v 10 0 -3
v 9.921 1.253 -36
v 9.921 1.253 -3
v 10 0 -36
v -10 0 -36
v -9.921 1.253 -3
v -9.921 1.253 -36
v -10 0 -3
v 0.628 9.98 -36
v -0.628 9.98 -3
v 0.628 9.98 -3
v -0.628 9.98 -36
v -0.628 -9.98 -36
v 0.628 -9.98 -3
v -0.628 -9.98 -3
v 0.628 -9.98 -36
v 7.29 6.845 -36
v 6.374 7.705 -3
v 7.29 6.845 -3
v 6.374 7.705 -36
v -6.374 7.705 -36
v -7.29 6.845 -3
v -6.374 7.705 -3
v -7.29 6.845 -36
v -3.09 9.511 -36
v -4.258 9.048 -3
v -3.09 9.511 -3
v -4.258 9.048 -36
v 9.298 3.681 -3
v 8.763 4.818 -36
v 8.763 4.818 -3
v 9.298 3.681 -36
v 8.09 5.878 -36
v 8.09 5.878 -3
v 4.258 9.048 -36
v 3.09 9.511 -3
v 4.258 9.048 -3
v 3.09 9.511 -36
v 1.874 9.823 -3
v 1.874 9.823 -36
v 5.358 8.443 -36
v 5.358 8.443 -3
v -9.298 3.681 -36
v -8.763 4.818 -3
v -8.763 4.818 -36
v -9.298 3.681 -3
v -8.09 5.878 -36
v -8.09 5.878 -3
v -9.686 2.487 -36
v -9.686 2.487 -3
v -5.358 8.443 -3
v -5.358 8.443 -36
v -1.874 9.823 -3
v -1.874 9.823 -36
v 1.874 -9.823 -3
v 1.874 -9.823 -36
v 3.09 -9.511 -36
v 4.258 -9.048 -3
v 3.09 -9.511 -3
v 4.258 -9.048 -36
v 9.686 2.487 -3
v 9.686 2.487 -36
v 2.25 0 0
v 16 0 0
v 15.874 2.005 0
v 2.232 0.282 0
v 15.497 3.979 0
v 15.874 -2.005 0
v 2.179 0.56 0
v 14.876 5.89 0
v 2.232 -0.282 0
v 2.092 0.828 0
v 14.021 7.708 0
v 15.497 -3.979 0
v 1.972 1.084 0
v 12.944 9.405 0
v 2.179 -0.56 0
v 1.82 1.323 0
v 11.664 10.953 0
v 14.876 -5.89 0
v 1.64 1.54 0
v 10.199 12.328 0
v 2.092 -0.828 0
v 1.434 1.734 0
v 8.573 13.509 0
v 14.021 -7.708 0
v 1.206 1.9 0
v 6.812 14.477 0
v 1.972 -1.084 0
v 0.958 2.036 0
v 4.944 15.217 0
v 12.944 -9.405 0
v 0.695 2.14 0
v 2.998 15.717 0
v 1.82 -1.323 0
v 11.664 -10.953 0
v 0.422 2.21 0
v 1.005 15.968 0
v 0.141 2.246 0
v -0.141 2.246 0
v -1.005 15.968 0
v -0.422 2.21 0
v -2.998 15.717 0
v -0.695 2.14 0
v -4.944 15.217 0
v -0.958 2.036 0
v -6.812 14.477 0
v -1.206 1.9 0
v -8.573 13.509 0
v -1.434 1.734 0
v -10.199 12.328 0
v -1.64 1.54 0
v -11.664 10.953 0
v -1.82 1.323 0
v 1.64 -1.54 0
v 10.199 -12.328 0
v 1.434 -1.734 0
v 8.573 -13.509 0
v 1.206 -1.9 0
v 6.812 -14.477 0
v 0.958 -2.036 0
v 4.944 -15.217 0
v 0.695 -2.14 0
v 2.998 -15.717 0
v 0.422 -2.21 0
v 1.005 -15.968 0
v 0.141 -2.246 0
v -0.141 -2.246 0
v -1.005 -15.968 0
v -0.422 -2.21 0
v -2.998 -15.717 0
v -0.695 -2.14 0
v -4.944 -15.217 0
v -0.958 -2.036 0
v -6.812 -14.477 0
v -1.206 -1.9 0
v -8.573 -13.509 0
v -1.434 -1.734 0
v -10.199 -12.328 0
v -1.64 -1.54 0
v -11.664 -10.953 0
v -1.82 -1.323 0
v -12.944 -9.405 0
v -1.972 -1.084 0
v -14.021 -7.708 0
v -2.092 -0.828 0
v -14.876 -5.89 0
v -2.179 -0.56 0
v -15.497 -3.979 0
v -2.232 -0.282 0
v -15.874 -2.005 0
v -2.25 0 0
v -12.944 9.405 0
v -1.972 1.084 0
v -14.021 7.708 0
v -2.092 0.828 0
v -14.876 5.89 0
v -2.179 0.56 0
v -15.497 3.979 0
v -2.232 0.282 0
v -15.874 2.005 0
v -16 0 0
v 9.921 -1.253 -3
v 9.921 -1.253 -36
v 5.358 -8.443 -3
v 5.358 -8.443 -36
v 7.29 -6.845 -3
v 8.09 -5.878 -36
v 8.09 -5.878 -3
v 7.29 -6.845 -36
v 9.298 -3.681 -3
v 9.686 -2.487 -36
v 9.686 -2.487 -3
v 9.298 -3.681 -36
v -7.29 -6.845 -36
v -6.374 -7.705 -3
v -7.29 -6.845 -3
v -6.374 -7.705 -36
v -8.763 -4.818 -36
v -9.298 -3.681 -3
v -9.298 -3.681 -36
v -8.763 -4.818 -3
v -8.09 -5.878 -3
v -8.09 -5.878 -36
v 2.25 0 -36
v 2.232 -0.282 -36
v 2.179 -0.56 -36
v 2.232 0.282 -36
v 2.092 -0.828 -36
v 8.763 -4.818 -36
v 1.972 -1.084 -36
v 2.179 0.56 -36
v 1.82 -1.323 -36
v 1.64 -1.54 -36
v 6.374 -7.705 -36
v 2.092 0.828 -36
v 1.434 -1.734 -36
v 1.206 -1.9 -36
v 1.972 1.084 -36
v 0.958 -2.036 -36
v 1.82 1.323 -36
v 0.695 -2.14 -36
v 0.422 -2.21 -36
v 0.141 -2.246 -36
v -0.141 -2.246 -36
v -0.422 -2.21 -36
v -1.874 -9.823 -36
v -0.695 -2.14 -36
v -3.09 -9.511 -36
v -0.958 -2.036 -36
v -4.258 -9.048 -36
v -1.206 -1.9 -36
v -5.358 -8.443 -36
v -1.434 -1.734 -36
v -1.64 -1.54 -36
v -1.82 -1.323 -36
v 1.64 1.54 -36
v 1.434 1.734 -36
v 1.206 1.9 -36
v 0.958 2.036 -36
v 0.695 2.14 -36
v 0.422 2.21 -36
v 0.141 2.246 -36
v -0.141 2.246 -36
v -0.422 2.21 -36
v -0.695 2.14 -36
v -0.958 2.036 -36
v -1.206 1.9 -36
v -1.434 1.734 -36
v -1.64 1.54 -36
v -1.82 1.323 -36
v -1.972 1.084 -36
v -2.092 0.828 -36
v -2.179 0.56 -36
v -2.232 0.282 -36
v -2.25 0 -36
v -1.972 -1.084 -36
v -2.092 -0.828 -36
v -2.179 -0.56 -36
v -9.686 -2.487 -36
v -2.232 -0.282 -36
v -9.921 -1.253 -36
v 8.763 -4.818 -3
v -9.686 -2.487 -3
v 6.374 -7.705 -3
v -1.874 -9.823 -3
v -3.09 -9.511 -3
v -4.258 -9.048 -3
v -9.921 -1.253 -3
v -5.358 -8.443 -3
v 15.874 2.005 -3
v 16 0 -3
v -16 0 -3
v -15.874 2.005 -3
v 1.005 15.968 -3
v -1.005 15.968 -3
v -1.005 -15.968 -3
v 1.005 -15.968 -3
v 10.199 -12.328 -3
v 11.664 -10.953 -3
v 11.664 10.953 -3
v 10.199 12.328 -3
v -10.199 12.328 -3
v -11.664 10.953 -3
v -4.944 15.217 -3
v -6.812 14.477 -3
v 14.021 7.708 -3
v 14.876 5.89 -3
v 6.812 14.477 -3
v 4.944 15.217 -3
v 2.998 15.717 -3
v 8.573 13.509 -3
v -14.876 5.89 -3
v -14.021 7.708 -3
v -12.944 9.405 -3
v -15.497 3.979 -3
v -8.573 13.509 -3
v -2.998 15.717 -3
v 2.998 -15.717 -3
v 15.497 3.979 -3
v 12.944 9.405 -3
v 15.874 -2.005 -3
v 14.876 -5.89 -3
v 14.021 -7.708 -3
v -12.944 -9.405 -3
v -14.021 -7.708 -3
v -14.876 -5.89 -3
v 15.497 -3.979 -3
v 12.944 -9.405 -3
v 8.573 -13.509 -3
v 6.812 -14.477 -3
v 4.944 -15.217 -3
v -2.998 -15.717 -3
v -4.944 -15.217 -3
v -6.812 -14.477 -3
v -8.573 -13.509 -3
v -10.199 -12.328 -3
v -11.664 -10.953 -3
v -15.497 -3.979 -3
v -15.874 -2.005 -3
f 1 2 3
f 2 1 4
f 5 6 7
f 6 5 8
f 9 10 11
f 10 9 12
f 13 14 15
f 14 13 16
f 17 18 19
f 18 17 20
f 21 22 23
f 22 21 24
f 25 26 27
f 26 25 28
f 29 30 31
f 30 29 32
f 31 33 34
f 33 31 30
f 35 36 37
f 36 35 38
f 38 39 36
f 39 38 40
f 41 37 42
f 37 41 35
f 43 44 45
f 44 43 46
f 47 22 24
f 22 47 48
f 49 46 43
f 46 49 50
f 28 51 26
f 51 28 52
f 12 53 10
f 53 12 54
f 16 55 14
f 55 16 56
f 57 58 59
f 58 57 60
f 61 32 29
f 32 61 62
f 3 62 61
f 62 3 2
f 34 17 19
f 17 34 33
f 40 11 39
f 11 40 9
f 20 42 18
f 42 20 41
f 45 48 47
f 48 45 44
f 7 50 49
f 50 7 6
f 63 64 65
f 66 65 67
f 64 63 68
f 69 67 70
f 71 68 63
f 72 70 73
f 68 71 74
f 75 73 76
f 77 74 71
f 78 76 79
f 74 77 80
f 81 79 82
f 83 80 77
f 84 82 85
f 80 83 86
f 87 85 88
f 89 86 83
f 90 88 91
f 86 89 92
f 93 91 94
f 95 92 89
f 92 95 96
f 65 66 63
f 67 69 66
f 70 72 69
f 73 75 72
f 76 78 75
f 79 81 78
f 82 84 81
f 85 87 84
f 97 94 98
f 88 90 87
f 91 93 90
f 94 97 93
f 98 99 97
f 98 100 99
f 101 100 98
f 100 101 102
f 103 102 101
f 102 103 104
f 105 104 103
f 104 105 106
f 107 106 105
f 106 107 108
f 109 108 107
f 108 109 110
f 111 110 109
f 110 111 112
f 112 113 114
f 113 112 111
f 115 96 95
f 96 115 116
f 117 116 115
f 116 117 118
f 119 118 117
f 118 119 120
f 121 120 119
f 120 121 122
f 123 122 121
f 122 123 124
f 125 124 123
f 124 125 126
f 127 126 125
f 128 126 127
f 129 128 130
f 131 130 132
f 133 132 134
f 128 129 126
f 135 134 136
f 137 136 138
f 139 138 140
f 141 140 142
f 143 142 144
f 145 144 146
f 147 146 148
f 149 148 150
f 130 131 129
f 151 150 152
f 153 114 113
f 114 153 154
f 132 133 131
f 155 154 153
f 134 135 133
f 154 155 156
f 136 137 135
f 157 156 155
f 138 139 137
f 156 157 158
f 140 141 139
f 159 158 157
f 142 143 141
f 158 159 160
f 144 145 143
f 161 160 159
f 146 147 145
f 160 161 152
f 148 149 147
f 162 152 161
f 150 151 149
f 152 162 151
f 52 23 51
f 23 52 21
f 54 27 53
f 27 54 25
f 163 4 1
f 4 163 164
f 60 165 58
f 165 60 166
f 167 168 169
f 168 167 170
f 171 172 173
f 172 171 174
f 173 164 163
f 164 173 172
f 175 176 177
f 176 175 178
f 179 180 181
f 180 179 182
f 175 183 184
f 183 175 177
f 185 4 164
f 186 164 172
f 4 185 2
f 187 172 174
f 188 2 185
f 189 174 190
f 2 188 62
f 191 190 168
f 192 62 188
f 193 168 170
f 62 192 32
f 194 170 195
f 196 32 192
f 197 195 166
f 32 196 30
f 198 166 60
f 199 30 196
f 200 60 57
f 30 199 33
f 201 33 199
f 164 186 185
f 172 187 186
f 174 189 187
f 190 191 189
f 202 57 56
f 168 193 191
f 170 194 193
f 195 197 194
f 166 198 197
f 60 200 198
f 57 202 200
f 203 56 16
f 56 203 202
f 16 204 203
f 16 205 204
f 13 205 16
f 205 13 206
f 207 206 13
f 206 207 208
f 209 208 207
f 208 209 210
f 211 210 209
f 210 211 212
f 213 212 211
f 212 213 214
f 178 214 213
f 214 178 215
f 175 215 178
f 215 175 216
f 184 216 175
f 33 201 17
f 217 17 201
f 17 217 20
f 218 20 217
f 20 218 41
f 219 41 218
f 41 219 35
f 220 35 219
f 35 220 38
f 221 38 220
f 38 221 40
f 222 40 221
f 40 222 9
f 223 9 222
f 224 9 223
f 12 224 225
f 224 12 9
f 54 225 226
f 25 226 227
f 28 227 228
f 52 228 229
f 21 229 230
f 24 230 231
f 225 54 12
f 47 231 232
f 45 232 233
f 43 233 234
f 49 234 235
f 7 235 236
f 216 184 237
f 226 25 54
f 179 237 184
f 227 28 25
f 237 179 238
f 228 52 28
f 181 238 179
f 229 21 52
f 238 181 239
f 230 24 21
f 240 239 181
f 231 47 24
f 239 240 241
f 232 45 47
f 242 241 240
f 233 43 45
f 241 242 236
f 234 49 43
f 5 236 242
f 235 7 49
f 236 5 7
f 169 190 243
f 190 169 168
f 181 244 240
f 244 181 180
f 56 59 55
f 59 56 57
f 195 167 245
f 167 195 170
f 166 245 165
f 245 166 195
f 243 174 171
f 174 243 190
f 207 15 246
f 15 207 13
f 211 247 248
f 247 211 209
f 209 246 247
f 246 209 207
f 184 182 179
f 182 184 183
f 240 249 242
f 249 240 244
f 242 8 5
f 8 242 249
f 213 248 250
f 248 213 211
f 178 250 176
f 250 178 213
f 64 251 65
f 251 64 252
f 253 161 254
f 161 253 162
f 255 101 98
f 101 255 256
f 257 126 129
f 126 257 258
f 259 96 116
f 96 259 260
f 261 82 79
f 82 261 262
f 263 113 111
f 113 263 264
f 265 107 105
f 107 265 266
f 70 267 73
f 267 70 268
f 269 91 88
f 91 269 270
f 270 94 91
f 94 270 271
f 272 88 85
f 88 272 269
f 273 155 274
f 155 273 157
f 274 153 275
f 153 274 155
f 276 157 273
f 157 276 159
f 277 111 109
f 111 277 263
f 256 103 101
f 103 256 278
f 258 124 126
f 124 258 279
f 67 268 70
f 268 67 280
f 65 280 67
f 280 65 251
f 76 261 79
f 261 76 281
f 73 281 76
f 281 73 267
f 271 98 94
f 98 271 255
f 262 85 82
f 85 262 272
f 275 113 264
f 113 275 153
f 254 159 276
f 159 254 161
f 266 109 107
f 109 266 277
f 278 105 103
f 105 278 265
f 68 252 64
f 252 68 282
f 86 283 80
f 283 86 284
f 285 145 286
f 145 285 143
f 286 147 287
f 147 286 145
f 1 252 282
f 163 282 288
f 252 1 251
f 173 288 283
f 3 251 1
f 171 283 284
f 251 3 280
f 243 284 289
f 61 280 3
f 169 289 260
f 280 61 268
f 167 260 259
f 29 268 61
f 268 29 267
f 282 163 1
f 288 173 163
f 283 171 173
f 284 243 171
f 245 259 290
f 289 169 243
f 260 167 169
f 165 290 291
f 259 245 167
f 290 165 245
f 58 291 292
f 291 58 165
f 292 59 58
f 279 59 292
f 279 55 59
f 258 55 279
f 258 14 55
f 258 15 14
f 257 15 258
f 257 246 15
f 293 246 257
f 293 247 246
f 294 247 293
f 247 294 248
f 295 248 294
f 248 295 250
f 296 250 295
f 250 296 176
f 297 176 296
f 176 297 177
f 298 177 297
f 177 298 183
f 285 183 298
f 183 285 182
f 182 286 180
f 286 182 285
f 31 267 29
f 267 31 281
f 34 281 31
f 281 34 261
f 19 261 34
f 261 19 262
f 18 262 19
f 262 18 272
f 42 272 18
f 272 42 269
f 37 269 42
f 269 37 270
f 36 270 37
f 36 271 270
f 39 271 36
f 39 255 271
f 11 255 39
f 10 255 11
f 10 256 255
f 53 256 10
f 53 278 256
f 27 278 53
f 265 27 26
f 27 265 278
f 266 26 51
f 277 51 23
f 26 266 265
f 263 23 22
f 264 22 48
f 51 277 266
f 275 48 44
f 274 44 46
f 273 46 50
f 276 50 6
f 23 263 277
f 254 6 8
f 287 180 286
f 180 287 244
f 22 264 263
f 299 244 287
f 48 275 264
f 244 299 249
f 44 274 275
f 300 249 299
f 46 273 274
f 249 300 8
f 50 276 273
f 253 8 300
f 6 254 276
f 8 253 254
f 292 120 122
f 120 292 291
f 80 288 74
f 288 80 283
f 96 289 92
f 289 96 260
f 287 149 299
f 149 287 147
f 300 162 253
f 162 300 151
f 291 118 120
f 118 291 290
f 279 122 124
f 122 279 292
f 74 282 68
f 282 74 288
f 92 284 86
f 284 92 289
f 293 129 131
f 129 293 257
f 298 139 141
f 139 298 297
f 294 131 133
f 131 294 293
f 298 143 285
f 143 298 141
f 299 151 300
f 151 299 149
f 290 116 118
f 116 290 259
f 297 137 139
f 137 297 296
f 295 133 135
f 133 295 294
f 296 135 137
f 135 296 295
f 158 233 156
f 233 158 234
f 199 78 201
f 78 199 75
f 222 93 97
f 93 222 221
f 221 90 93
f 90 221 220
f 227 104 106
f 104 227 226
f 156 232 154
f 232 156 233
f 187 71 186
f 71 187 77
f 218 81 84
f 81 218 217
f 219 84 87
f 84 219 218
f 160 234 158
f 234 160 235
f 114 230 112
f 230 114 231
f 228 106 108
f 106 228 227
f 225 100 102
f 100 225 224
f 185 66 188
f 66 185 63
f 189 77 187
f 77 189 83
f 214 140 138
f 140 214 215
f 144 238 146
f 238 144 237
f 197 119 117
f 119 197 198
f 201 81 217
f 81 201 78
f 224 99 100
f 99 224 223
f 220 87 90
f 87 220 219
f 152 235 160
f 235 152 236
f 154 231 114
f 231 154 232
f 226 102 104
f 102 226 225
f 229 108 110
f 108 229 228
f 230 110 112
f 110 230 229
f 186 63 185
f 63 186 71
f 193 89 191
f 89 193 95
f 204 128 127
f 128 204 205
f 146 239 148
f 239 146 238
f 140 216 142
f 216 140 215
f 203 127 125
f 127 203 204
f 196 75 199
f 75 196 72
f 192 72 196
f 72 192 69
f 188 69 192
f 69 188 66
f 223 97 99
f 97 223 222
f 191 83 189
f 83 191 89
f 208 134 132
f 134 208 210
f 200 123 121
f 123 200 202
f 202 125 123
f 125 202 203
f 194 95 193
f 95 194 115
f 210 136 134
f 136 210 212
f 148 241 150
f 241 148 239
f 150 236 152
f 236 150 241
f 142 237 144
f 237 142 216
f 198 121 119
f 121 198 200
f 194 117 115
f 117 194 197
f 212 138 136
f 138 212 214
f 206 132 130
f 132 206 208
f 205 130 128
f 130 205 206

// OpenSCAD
$fn = 50;


difference() {
	union() {
		translate(v = [0, 0, -36.0000000000]) {
			cylinder(h = 36, r = 10.0000000000);
		}
		translate(v = [0, 0, -3.0000000000]) {
			cylinder(h = 3, r = 16.0000000000);
		}
	}
	union() {
		#translate(v = [0, 0, -36]) {
			cylinder(h = 36, r = 2.2500000000);
		}
	}
}
